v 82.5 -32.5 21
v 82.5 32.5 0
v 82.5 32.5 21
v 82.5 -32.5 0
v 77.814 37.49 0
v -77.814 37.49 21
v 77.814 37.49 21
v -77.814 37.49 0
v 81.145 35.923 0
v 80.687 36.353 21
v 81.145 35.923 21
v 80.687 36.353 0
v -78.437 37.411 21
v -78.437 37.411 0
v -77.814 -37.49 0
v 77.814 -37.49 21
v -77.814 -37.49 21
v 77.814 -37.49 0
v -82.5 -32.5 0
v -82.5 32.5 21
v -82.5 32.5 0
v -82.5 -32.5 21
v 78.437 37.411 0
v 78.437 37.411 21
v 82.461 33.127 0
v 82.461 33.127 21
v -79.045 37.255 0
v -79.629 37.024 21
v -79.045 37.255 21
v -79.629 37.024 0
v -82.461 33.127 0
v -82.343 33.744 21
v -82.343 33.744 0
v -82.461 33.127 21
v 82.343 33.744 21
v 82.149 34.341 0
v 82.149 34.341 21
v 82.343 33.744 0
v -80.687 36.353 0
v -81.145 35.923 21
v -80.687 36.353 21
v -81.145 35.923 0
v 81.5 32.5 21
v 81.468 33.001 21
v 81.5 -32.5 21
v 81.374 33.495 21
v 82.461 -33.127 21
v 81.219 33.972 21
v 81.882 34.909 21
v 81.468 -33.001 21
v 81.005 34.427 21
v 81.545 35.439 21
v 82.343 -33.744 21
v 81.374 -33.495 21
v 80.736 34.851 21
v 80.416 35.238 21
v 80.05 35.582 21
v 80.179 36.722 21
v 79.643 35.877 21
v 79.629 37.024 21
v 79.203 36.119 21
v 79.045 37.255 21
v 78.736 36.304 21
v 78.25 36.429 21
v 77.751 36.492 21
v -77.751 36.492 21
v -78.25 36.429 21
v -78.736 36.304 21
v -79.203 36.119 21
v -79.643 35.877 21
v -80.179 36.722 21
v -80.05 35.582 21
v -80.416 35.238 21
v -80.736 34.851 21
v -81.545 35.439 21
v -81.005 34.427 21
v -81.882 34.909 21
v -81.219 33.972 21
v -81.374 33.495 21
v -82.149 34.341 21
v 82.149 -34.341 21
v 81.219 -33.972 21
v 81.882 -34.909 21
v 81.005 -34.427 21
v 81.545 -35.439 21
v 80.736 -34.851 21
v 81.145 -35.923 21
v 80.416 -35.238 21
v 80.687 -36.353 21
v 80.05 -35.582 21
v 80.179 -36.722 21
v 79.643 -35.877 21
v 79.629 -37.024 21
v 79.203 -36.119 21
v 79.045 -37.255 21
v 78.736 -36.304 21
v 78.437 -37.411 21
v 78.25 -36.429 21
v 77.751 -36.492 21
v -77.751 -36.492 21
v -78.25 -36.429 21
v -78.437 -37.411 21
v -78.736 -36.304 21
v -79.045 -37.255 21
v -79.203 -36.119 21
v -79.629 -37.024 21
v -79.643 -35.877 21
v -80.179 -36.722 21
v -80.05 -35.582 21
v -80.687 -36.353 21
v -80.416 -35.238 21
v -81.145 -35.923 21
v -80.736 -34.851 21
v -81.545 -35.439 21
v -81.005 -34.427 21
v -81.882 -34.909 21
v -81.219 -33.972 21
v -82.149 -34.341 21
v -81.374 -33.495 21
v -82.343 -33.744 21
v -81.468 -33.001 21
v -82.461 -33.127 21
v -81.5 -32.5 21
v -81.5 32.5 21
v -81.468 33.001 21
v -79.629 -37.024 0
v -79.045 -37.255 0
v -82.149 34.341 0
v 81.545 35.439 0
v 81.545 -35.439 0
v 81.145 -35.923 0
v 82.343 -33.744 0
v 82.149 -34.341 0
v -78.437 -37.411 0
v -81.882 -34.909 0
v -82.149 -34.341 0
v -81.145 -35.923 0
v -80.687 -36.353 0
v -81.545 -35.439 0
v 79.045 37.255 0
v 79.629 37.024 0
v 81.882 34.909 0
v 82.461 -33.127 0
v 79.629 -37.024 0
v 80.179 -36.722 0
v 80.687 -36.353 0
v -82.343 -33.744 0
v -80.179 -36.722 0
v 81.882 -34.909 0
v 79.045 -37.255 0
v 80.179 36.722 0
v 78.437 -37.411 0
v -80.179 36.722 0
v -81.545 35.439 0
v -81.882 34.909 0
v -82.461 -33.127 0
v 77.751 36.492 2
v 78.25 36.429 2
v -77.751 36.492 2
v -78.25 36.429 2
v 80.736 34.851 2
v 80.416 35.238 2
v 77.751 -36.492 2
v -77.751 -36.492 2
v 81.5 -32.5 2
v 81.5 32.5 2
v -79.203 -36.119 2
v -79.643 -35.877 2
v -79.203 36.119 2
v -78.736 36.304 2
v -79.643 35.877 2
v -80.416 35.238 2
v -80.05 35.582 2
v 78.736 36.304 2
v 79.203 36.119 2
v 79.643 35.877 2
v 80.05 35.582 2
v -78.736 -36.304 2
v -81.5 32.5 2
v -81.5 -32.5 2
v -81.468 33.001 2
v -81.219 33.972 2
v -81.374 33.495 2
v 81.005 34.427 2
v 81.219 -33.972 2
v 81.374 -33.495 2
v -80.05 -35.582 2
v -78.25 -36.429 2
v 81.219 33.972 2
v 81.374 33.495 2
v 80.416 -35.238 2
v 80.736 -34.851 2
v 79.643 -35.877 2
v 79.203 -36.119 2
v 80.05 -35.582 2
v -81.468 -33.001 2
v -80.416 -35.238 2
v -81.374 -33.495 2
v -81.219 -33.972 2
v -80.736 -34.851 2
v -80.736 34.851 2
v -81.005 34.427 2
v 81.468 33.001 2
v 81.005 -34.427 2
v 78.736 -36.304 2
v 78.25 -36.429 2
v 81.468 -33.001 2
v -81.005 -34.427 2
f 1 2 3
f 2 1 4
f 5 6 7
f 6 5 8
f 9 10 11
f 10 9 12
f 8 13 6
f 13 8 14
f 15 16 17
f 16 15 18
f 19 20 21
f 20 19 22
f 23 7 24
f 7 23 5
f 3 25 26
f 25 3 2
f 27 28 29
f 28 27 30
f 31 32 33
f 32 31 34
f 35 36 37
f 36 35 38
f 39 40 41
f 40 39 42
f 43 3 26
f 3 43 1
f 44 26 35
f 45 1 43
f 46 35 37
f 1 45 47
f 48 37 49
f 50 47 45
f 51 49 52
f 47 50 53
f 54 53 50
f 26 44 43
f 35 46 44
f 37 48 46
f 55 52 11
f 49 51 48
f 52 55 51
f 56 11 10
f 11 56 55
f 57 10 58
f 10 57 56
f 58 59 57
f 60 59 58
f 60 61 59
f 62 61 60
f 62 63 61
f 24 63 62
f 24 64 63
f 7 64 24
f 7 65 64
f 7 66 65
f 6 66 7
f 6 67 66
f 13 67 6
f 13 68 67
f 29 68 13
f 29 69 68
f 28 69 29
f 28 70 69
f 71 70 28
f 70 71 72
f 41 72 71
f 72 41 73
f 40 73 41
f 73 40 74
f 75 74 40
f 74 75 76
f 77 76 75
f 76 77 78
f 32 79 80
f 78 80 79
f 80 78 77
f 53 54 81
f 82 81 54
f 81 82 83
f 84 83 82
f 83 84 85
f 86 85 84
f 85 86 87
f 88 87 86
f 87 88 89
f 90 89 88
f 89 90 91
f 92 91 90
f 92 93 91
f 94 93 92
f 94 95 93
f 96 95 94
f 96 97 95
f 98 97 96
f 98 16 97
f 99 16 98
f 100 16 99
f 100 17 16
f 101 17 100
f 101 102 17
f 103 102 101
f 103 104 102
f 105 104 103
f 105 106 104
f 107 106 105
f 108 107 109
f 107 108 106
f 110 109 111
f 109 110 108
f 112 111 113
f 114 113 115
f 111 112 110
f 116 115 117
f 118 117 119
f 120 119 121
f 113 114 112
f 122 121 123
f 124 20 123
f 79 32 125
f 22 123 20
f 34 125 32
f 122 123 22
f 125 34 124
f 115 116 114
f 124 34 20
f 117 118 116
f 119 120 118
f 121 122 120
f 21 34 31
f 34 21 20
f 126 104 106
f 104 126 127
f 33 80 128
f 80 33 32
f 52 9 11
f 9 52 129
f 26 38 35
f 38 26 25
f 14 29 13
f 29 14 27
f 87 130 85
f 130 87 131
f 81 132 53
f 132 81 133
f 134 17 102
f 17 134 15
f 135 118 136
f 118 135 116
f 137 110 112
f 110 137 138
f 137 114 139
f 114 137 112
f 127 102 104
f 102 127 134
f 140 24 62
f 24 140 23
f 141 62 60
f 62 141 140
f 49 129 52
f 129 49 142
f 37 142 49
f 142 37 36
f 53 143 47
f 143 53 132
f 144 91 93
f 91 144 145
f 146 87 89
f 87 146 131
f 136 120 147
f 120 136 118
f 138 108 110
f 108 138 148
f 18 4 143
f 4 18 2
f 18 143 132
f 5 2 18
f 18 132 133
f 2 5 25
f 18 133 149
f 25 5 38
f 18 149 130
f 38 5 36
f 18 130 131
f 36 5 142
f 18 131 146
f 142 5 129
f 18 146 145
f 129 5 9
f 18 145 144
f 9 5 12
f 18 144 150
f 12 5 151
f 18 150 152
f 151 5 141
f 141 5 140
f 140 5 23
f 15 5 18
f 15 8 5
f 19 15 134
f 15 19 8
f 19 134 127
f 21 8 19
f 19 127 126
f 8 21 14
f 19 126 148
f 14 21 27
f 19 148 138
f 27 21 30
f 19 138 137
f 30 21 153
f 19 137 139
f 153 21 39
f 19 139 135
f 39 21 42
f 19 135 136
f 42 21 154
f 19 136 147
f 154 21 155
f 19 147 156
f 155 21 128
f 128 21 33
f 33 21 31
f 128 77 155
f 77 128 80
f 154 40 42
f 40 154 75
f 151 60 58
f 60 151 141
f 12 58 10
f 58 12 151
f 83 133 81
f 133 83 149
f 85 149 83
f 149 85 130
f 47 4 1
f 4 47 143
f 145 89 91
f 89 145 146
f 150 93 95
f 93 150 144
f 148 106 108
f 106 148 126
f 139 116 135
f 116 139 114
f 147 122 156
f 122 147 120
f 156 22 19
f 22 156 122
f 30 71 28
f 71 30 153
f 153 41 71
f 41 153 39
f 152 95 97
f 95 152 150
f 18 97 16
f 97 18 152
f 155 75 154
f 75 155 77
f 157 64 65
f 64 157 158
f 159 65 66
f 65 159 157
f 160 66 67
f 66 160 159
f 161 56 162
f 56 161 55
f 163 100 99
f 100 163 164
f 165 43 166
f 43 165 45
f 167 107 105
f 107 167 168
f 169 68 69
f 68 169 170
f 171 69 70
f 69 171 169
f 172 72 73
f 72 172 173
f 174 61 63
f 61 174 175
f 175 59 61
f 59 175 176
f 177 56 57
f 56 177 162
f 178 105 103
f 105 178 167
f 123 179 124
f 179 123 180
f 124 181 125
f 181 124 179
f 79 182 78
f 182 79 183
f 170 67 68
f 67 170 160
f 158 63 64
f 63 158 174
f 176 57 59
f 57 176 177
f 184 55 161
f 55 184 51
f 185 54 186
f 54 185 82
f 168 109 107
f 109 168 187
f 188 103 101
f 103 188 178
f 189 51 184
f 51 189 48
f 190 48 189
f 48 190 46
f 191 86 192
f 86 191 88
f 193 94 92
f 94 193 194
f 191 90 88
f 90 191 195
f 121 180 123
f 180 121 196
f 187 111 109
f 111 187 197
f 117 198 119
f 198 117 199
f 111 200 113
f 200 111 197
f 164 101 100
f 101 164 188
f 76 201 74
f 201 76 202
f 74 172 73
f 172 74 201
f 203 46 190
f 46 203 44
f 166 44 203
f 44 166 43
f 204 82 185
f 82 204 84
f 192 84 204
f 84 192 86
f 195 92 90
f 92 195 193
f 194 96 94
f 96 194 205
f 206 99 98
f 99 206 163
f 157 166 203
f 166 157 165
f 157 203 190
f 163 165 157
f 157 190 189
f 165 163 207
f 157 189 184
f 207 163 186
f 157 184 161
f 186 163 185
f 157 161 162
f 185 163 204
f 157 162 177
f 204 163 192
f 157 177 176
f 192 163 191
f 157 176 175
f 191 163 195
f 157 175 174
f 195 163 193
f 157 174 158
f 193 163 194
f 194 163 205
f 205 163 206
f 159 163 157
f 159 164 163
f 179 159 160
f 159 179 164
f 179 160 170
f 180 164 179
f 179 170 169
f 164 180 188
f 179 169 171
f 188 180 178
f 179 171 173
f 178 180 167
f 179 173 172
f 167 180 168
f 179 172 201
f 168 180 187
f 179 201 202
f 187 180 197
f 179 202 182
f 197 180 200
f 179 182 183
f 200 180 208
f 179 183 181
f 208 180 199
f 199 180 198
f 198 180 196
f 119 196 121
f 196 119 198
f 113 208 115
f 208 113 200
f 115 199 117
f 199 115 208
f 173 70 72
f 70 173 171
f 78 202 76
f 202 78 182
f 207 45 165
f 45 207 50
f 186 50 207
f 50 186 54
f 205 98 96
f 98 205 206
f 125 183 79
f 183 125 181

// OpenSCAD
$fn = 50;


difference() {
	union() {
		hull() {
			translate(v = [-77.5000000000, 32.5000000000, 0]) {
				cylinder(h = 21, r = 5);
			}
			translate(v = [77.5000000000, 32.5000000000, 0]) {
				cylinder(h = 21, r = 5);
			}
			translate(v = [-77.5000000000, -32.5000000000, 0]) {
				cylinder(h = 21, r = 5);
			}
			translate(v = [77.5000000000, -32.5000000000, 0]) {
				cylinder(h = 21, r = 5);
			}
		}
	}
	union() {
		translate(v = [0, 0, 2]) {
			hull() {
				translate(v = [-77.5000000000, 32.5000000000, 0]) {
					cylinder(h = 19, r = 4);
				}
				translate(v = [77.5000000000, 32.5000000000, 0]) {
					cylinder(h = 19, r = 4);
				}
				translate(v = [-77.5000000000, -32.5000000000, 0]) {
					cylinder(h = 19, r = 4);
				}
				translate(v = [77.5000000000, -32.5000000000, 0]) {
					cylinder(h = 19, r = 4);
				}
			}
		}
	}
}
